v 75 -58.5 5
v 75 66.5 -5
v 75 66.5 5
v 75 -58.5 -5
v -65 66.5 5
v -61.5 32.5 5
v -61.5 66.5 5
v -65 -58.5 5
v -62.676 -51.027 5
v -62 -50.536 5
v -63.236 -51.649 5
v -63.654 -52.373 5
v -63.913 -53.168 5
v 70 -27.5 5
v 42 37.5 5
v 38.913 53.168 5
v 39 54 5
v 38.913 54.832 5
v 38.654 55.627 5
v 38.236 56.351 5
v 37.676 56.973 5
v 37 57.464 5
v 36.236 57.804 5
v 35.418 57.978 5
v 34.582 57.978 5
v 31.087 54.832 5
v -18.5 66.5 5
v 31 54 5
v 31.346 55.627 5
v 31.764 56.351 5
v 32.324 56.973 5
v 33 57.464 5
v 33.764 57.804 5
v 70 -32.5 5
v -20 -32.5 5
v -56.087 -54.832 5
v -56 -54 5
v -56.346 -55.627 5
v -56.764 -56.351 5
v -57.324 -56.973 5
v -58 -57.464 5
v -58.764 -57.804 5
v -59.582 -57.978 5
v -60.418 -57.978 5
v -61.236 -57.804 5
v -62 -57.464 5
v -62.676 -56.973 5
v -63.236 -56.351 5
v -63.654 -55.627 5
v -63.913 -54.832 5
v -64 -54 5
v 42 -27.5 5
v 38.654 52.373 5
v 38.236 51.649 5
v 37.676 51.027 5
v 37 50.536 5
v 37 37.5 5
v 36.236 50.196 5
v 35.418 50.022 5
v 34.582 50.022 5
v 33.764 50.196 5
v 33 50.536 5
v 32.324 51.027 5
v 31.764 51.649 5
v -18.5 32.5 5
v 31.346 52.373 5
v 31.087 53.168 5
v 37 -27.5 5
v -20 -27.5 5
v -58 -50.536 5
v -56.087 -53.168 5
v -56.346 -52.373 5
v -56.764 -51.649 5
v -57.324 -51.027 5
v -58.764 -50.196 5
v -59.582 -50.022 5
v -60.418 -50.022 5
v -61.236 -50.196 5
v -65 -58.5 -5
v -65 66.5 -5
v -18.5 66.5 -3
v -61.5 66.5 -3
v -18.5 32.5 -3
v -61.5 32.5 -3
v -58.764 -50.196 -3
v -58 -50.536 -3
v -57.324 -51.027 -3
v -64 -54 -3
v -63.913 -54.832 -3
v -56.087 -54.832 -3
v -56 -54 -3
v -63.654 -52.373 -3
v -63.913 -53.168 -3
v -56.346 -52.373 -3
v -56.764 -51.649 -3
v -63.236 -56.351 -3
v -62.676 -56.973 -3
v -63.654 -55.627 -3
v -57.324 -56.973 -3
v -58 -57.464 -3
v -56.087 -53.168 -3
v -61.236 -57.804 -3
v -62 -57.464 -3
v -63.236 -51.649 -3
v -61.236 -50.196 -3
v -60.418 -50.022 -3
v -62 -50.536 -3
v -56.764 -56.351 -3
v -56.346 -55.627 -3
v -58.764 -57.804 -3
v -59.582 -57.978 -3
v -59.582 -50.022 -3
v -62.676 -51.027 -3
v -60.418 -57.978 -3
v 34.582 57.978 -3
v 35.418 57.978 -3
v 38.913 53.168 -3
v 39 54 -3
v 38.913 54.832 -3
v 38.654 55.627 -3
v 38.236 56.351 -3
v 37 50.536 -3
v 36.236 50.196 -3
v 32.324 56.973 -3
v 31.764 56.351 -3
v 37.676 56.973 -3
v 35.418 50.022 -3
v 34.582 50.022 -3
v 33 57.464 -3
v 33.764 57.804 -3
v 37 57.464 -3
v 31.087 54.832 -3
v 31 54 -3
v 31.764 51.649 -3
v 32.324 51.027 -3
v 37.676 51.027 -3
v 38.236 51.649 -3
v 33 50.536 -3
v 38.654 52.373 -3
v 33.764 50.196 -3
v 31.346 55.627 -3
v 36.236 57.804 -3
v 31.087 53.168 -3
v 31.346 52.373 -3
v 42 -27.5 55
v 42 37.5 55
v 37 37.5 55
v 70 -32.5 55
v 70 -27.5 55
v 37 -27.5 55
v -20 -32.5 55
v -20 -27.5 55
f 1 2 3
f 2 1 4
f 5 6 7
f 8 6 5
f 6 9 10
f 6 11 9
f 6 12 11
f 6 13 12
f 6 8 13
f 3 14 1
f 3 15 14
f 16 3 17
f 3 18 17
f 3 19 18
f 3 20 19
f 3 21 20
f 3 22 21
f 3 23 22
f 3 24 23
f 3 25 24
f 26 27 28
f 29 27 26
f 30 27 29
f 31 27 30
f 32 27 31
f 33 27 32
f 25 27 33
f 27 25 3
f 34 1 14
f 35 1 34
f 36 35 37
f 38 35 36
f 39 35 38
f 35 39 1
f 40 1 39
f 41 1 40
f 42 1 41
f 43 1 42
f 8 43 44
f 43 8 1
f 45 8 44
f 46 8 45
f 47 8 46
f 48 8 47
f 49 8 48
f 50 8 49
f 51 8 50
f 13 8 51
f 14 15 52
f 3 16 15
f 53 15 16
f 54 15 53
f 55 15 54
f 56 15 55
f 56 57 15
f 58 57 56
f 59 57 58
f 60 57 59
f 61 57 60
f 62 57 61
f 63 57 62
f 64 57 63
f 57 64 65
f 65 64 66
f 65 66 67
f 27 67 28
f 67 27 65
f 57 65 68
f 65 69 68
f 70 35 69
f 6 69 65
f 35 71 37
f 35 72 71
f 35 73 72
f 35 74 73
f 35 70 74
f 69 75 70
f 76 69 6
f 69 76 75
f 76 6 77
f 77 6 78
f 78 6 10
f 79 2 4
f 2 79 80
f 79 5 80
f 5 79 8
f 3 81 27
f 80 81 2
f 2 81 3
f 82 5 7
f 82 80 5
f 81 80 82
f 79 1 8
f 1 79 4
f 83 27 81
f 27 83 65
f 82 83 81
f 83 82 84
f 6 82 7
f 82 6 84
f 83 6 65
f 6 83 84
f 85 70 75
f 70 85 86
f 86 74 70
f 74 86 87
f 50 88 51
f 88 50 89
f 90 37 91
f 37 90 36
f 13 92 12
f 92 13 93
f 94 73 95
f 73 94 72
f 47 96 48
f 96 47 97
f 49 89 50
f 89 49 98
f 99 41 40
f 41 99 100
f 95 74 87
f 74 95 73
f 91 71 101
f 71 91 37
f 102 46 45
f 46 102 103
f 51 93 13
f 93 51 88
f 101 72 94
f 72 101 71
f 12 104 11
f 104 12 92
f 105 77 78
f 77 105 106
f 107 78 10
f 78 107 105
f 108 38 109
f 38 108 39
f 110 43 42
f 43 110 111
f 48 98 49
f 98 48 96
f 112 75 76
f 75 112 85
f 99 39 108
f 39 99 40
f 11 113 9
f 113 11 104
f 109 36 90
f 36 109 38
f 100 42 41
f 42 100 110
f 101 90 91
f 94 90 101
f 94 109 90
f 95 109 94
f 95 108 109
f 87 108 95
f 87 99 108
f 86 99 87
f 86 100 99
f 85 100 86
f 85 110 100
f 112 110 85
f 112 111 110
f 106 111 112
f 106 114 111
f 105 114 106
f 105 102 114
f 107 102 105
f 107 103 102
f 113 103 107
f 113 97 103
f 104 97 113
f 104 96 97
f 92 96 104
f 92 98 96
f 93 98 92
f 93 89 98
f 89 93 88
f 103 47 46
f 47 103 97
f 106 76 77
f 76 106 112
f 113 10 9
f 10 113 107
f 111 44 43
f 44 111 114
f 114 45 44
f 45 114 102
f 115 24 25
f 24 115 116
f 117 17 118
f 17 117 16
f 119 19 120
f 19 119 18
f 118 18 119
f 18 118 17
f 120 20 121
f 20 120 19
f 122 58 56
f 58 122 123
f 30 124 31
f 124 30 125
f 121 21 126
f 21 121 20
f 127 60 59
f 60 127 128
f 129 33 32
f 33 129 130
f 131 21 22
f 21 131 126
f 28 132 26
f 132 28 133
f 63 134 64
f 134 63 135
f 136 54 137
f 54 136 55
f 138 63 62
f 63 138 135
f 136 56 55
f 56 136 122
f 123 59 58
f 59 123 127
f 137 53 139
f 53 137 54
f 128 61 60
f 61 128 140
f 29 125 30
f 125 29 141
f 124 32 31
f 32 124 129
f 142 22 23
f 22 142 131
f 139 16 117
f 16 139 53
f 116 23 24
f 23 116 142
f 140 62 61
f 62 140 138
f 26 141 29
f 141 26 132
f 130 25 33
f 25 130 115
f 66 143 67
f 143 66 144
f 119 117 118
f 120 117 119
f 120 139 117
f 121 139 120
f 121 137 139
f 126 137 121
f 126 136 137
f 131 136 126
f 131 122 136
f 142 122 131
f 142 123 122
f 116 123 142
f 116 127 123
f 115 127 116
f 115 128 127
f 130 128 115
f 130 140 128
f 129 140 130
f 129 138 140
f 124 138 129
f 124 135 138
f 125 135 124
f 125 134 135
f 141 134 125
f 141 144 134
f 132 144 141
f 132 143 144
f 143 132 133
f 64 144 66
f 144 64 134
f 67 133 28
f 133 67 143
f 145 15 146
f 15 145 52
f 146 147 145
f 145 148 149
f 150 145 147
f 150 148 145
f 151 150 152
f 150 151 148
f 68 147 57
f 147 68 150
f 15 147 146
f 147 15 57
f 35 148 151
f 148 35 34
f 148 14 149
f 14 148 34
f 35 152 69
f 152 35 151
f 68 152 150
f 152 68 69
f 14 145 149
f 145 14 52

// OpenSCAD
// Multi_Tissue_Recording Base v2_100mm
// Jack F. Murphy <me@jackmurphy.nyc>
// https://github.com/teammurphy/Multi_Tissue_CAD

// Smoothness
$fn = 30;

// Stage Dimensions
stage_len=140;
stage_width=125;
stage_thickness=10;

// Hole Dimensions
rod=8;

difference(){
  translate([5, 4, 0])  
    cube([stage_len, stage_width, stage_thickness], center=true);
    

  // Threaded Hole
  translate([-40, 54, 2]){
    cube([43, 43, stage_thickness], center=true);
  }

  // Linear Bearing Holes
  translate([-60, -54, 2]) {
    cylinder(d=rod, h=stage_thickness, center=true);

  }
  translate([35, 54, 2]) { 
    cylinder(d=rod, h=stage_thickness, center=true);
  }
}

// Creates Insert for Pi to Stand Against
translate([37, -(stage_width/2)+30, 5])
  cube([5, 70, 50]);

// Creates Insert for Motor Control to stand against
translate([-20, -(stage_width/2)+30, 5])
  cube([90, 5, 50]);
